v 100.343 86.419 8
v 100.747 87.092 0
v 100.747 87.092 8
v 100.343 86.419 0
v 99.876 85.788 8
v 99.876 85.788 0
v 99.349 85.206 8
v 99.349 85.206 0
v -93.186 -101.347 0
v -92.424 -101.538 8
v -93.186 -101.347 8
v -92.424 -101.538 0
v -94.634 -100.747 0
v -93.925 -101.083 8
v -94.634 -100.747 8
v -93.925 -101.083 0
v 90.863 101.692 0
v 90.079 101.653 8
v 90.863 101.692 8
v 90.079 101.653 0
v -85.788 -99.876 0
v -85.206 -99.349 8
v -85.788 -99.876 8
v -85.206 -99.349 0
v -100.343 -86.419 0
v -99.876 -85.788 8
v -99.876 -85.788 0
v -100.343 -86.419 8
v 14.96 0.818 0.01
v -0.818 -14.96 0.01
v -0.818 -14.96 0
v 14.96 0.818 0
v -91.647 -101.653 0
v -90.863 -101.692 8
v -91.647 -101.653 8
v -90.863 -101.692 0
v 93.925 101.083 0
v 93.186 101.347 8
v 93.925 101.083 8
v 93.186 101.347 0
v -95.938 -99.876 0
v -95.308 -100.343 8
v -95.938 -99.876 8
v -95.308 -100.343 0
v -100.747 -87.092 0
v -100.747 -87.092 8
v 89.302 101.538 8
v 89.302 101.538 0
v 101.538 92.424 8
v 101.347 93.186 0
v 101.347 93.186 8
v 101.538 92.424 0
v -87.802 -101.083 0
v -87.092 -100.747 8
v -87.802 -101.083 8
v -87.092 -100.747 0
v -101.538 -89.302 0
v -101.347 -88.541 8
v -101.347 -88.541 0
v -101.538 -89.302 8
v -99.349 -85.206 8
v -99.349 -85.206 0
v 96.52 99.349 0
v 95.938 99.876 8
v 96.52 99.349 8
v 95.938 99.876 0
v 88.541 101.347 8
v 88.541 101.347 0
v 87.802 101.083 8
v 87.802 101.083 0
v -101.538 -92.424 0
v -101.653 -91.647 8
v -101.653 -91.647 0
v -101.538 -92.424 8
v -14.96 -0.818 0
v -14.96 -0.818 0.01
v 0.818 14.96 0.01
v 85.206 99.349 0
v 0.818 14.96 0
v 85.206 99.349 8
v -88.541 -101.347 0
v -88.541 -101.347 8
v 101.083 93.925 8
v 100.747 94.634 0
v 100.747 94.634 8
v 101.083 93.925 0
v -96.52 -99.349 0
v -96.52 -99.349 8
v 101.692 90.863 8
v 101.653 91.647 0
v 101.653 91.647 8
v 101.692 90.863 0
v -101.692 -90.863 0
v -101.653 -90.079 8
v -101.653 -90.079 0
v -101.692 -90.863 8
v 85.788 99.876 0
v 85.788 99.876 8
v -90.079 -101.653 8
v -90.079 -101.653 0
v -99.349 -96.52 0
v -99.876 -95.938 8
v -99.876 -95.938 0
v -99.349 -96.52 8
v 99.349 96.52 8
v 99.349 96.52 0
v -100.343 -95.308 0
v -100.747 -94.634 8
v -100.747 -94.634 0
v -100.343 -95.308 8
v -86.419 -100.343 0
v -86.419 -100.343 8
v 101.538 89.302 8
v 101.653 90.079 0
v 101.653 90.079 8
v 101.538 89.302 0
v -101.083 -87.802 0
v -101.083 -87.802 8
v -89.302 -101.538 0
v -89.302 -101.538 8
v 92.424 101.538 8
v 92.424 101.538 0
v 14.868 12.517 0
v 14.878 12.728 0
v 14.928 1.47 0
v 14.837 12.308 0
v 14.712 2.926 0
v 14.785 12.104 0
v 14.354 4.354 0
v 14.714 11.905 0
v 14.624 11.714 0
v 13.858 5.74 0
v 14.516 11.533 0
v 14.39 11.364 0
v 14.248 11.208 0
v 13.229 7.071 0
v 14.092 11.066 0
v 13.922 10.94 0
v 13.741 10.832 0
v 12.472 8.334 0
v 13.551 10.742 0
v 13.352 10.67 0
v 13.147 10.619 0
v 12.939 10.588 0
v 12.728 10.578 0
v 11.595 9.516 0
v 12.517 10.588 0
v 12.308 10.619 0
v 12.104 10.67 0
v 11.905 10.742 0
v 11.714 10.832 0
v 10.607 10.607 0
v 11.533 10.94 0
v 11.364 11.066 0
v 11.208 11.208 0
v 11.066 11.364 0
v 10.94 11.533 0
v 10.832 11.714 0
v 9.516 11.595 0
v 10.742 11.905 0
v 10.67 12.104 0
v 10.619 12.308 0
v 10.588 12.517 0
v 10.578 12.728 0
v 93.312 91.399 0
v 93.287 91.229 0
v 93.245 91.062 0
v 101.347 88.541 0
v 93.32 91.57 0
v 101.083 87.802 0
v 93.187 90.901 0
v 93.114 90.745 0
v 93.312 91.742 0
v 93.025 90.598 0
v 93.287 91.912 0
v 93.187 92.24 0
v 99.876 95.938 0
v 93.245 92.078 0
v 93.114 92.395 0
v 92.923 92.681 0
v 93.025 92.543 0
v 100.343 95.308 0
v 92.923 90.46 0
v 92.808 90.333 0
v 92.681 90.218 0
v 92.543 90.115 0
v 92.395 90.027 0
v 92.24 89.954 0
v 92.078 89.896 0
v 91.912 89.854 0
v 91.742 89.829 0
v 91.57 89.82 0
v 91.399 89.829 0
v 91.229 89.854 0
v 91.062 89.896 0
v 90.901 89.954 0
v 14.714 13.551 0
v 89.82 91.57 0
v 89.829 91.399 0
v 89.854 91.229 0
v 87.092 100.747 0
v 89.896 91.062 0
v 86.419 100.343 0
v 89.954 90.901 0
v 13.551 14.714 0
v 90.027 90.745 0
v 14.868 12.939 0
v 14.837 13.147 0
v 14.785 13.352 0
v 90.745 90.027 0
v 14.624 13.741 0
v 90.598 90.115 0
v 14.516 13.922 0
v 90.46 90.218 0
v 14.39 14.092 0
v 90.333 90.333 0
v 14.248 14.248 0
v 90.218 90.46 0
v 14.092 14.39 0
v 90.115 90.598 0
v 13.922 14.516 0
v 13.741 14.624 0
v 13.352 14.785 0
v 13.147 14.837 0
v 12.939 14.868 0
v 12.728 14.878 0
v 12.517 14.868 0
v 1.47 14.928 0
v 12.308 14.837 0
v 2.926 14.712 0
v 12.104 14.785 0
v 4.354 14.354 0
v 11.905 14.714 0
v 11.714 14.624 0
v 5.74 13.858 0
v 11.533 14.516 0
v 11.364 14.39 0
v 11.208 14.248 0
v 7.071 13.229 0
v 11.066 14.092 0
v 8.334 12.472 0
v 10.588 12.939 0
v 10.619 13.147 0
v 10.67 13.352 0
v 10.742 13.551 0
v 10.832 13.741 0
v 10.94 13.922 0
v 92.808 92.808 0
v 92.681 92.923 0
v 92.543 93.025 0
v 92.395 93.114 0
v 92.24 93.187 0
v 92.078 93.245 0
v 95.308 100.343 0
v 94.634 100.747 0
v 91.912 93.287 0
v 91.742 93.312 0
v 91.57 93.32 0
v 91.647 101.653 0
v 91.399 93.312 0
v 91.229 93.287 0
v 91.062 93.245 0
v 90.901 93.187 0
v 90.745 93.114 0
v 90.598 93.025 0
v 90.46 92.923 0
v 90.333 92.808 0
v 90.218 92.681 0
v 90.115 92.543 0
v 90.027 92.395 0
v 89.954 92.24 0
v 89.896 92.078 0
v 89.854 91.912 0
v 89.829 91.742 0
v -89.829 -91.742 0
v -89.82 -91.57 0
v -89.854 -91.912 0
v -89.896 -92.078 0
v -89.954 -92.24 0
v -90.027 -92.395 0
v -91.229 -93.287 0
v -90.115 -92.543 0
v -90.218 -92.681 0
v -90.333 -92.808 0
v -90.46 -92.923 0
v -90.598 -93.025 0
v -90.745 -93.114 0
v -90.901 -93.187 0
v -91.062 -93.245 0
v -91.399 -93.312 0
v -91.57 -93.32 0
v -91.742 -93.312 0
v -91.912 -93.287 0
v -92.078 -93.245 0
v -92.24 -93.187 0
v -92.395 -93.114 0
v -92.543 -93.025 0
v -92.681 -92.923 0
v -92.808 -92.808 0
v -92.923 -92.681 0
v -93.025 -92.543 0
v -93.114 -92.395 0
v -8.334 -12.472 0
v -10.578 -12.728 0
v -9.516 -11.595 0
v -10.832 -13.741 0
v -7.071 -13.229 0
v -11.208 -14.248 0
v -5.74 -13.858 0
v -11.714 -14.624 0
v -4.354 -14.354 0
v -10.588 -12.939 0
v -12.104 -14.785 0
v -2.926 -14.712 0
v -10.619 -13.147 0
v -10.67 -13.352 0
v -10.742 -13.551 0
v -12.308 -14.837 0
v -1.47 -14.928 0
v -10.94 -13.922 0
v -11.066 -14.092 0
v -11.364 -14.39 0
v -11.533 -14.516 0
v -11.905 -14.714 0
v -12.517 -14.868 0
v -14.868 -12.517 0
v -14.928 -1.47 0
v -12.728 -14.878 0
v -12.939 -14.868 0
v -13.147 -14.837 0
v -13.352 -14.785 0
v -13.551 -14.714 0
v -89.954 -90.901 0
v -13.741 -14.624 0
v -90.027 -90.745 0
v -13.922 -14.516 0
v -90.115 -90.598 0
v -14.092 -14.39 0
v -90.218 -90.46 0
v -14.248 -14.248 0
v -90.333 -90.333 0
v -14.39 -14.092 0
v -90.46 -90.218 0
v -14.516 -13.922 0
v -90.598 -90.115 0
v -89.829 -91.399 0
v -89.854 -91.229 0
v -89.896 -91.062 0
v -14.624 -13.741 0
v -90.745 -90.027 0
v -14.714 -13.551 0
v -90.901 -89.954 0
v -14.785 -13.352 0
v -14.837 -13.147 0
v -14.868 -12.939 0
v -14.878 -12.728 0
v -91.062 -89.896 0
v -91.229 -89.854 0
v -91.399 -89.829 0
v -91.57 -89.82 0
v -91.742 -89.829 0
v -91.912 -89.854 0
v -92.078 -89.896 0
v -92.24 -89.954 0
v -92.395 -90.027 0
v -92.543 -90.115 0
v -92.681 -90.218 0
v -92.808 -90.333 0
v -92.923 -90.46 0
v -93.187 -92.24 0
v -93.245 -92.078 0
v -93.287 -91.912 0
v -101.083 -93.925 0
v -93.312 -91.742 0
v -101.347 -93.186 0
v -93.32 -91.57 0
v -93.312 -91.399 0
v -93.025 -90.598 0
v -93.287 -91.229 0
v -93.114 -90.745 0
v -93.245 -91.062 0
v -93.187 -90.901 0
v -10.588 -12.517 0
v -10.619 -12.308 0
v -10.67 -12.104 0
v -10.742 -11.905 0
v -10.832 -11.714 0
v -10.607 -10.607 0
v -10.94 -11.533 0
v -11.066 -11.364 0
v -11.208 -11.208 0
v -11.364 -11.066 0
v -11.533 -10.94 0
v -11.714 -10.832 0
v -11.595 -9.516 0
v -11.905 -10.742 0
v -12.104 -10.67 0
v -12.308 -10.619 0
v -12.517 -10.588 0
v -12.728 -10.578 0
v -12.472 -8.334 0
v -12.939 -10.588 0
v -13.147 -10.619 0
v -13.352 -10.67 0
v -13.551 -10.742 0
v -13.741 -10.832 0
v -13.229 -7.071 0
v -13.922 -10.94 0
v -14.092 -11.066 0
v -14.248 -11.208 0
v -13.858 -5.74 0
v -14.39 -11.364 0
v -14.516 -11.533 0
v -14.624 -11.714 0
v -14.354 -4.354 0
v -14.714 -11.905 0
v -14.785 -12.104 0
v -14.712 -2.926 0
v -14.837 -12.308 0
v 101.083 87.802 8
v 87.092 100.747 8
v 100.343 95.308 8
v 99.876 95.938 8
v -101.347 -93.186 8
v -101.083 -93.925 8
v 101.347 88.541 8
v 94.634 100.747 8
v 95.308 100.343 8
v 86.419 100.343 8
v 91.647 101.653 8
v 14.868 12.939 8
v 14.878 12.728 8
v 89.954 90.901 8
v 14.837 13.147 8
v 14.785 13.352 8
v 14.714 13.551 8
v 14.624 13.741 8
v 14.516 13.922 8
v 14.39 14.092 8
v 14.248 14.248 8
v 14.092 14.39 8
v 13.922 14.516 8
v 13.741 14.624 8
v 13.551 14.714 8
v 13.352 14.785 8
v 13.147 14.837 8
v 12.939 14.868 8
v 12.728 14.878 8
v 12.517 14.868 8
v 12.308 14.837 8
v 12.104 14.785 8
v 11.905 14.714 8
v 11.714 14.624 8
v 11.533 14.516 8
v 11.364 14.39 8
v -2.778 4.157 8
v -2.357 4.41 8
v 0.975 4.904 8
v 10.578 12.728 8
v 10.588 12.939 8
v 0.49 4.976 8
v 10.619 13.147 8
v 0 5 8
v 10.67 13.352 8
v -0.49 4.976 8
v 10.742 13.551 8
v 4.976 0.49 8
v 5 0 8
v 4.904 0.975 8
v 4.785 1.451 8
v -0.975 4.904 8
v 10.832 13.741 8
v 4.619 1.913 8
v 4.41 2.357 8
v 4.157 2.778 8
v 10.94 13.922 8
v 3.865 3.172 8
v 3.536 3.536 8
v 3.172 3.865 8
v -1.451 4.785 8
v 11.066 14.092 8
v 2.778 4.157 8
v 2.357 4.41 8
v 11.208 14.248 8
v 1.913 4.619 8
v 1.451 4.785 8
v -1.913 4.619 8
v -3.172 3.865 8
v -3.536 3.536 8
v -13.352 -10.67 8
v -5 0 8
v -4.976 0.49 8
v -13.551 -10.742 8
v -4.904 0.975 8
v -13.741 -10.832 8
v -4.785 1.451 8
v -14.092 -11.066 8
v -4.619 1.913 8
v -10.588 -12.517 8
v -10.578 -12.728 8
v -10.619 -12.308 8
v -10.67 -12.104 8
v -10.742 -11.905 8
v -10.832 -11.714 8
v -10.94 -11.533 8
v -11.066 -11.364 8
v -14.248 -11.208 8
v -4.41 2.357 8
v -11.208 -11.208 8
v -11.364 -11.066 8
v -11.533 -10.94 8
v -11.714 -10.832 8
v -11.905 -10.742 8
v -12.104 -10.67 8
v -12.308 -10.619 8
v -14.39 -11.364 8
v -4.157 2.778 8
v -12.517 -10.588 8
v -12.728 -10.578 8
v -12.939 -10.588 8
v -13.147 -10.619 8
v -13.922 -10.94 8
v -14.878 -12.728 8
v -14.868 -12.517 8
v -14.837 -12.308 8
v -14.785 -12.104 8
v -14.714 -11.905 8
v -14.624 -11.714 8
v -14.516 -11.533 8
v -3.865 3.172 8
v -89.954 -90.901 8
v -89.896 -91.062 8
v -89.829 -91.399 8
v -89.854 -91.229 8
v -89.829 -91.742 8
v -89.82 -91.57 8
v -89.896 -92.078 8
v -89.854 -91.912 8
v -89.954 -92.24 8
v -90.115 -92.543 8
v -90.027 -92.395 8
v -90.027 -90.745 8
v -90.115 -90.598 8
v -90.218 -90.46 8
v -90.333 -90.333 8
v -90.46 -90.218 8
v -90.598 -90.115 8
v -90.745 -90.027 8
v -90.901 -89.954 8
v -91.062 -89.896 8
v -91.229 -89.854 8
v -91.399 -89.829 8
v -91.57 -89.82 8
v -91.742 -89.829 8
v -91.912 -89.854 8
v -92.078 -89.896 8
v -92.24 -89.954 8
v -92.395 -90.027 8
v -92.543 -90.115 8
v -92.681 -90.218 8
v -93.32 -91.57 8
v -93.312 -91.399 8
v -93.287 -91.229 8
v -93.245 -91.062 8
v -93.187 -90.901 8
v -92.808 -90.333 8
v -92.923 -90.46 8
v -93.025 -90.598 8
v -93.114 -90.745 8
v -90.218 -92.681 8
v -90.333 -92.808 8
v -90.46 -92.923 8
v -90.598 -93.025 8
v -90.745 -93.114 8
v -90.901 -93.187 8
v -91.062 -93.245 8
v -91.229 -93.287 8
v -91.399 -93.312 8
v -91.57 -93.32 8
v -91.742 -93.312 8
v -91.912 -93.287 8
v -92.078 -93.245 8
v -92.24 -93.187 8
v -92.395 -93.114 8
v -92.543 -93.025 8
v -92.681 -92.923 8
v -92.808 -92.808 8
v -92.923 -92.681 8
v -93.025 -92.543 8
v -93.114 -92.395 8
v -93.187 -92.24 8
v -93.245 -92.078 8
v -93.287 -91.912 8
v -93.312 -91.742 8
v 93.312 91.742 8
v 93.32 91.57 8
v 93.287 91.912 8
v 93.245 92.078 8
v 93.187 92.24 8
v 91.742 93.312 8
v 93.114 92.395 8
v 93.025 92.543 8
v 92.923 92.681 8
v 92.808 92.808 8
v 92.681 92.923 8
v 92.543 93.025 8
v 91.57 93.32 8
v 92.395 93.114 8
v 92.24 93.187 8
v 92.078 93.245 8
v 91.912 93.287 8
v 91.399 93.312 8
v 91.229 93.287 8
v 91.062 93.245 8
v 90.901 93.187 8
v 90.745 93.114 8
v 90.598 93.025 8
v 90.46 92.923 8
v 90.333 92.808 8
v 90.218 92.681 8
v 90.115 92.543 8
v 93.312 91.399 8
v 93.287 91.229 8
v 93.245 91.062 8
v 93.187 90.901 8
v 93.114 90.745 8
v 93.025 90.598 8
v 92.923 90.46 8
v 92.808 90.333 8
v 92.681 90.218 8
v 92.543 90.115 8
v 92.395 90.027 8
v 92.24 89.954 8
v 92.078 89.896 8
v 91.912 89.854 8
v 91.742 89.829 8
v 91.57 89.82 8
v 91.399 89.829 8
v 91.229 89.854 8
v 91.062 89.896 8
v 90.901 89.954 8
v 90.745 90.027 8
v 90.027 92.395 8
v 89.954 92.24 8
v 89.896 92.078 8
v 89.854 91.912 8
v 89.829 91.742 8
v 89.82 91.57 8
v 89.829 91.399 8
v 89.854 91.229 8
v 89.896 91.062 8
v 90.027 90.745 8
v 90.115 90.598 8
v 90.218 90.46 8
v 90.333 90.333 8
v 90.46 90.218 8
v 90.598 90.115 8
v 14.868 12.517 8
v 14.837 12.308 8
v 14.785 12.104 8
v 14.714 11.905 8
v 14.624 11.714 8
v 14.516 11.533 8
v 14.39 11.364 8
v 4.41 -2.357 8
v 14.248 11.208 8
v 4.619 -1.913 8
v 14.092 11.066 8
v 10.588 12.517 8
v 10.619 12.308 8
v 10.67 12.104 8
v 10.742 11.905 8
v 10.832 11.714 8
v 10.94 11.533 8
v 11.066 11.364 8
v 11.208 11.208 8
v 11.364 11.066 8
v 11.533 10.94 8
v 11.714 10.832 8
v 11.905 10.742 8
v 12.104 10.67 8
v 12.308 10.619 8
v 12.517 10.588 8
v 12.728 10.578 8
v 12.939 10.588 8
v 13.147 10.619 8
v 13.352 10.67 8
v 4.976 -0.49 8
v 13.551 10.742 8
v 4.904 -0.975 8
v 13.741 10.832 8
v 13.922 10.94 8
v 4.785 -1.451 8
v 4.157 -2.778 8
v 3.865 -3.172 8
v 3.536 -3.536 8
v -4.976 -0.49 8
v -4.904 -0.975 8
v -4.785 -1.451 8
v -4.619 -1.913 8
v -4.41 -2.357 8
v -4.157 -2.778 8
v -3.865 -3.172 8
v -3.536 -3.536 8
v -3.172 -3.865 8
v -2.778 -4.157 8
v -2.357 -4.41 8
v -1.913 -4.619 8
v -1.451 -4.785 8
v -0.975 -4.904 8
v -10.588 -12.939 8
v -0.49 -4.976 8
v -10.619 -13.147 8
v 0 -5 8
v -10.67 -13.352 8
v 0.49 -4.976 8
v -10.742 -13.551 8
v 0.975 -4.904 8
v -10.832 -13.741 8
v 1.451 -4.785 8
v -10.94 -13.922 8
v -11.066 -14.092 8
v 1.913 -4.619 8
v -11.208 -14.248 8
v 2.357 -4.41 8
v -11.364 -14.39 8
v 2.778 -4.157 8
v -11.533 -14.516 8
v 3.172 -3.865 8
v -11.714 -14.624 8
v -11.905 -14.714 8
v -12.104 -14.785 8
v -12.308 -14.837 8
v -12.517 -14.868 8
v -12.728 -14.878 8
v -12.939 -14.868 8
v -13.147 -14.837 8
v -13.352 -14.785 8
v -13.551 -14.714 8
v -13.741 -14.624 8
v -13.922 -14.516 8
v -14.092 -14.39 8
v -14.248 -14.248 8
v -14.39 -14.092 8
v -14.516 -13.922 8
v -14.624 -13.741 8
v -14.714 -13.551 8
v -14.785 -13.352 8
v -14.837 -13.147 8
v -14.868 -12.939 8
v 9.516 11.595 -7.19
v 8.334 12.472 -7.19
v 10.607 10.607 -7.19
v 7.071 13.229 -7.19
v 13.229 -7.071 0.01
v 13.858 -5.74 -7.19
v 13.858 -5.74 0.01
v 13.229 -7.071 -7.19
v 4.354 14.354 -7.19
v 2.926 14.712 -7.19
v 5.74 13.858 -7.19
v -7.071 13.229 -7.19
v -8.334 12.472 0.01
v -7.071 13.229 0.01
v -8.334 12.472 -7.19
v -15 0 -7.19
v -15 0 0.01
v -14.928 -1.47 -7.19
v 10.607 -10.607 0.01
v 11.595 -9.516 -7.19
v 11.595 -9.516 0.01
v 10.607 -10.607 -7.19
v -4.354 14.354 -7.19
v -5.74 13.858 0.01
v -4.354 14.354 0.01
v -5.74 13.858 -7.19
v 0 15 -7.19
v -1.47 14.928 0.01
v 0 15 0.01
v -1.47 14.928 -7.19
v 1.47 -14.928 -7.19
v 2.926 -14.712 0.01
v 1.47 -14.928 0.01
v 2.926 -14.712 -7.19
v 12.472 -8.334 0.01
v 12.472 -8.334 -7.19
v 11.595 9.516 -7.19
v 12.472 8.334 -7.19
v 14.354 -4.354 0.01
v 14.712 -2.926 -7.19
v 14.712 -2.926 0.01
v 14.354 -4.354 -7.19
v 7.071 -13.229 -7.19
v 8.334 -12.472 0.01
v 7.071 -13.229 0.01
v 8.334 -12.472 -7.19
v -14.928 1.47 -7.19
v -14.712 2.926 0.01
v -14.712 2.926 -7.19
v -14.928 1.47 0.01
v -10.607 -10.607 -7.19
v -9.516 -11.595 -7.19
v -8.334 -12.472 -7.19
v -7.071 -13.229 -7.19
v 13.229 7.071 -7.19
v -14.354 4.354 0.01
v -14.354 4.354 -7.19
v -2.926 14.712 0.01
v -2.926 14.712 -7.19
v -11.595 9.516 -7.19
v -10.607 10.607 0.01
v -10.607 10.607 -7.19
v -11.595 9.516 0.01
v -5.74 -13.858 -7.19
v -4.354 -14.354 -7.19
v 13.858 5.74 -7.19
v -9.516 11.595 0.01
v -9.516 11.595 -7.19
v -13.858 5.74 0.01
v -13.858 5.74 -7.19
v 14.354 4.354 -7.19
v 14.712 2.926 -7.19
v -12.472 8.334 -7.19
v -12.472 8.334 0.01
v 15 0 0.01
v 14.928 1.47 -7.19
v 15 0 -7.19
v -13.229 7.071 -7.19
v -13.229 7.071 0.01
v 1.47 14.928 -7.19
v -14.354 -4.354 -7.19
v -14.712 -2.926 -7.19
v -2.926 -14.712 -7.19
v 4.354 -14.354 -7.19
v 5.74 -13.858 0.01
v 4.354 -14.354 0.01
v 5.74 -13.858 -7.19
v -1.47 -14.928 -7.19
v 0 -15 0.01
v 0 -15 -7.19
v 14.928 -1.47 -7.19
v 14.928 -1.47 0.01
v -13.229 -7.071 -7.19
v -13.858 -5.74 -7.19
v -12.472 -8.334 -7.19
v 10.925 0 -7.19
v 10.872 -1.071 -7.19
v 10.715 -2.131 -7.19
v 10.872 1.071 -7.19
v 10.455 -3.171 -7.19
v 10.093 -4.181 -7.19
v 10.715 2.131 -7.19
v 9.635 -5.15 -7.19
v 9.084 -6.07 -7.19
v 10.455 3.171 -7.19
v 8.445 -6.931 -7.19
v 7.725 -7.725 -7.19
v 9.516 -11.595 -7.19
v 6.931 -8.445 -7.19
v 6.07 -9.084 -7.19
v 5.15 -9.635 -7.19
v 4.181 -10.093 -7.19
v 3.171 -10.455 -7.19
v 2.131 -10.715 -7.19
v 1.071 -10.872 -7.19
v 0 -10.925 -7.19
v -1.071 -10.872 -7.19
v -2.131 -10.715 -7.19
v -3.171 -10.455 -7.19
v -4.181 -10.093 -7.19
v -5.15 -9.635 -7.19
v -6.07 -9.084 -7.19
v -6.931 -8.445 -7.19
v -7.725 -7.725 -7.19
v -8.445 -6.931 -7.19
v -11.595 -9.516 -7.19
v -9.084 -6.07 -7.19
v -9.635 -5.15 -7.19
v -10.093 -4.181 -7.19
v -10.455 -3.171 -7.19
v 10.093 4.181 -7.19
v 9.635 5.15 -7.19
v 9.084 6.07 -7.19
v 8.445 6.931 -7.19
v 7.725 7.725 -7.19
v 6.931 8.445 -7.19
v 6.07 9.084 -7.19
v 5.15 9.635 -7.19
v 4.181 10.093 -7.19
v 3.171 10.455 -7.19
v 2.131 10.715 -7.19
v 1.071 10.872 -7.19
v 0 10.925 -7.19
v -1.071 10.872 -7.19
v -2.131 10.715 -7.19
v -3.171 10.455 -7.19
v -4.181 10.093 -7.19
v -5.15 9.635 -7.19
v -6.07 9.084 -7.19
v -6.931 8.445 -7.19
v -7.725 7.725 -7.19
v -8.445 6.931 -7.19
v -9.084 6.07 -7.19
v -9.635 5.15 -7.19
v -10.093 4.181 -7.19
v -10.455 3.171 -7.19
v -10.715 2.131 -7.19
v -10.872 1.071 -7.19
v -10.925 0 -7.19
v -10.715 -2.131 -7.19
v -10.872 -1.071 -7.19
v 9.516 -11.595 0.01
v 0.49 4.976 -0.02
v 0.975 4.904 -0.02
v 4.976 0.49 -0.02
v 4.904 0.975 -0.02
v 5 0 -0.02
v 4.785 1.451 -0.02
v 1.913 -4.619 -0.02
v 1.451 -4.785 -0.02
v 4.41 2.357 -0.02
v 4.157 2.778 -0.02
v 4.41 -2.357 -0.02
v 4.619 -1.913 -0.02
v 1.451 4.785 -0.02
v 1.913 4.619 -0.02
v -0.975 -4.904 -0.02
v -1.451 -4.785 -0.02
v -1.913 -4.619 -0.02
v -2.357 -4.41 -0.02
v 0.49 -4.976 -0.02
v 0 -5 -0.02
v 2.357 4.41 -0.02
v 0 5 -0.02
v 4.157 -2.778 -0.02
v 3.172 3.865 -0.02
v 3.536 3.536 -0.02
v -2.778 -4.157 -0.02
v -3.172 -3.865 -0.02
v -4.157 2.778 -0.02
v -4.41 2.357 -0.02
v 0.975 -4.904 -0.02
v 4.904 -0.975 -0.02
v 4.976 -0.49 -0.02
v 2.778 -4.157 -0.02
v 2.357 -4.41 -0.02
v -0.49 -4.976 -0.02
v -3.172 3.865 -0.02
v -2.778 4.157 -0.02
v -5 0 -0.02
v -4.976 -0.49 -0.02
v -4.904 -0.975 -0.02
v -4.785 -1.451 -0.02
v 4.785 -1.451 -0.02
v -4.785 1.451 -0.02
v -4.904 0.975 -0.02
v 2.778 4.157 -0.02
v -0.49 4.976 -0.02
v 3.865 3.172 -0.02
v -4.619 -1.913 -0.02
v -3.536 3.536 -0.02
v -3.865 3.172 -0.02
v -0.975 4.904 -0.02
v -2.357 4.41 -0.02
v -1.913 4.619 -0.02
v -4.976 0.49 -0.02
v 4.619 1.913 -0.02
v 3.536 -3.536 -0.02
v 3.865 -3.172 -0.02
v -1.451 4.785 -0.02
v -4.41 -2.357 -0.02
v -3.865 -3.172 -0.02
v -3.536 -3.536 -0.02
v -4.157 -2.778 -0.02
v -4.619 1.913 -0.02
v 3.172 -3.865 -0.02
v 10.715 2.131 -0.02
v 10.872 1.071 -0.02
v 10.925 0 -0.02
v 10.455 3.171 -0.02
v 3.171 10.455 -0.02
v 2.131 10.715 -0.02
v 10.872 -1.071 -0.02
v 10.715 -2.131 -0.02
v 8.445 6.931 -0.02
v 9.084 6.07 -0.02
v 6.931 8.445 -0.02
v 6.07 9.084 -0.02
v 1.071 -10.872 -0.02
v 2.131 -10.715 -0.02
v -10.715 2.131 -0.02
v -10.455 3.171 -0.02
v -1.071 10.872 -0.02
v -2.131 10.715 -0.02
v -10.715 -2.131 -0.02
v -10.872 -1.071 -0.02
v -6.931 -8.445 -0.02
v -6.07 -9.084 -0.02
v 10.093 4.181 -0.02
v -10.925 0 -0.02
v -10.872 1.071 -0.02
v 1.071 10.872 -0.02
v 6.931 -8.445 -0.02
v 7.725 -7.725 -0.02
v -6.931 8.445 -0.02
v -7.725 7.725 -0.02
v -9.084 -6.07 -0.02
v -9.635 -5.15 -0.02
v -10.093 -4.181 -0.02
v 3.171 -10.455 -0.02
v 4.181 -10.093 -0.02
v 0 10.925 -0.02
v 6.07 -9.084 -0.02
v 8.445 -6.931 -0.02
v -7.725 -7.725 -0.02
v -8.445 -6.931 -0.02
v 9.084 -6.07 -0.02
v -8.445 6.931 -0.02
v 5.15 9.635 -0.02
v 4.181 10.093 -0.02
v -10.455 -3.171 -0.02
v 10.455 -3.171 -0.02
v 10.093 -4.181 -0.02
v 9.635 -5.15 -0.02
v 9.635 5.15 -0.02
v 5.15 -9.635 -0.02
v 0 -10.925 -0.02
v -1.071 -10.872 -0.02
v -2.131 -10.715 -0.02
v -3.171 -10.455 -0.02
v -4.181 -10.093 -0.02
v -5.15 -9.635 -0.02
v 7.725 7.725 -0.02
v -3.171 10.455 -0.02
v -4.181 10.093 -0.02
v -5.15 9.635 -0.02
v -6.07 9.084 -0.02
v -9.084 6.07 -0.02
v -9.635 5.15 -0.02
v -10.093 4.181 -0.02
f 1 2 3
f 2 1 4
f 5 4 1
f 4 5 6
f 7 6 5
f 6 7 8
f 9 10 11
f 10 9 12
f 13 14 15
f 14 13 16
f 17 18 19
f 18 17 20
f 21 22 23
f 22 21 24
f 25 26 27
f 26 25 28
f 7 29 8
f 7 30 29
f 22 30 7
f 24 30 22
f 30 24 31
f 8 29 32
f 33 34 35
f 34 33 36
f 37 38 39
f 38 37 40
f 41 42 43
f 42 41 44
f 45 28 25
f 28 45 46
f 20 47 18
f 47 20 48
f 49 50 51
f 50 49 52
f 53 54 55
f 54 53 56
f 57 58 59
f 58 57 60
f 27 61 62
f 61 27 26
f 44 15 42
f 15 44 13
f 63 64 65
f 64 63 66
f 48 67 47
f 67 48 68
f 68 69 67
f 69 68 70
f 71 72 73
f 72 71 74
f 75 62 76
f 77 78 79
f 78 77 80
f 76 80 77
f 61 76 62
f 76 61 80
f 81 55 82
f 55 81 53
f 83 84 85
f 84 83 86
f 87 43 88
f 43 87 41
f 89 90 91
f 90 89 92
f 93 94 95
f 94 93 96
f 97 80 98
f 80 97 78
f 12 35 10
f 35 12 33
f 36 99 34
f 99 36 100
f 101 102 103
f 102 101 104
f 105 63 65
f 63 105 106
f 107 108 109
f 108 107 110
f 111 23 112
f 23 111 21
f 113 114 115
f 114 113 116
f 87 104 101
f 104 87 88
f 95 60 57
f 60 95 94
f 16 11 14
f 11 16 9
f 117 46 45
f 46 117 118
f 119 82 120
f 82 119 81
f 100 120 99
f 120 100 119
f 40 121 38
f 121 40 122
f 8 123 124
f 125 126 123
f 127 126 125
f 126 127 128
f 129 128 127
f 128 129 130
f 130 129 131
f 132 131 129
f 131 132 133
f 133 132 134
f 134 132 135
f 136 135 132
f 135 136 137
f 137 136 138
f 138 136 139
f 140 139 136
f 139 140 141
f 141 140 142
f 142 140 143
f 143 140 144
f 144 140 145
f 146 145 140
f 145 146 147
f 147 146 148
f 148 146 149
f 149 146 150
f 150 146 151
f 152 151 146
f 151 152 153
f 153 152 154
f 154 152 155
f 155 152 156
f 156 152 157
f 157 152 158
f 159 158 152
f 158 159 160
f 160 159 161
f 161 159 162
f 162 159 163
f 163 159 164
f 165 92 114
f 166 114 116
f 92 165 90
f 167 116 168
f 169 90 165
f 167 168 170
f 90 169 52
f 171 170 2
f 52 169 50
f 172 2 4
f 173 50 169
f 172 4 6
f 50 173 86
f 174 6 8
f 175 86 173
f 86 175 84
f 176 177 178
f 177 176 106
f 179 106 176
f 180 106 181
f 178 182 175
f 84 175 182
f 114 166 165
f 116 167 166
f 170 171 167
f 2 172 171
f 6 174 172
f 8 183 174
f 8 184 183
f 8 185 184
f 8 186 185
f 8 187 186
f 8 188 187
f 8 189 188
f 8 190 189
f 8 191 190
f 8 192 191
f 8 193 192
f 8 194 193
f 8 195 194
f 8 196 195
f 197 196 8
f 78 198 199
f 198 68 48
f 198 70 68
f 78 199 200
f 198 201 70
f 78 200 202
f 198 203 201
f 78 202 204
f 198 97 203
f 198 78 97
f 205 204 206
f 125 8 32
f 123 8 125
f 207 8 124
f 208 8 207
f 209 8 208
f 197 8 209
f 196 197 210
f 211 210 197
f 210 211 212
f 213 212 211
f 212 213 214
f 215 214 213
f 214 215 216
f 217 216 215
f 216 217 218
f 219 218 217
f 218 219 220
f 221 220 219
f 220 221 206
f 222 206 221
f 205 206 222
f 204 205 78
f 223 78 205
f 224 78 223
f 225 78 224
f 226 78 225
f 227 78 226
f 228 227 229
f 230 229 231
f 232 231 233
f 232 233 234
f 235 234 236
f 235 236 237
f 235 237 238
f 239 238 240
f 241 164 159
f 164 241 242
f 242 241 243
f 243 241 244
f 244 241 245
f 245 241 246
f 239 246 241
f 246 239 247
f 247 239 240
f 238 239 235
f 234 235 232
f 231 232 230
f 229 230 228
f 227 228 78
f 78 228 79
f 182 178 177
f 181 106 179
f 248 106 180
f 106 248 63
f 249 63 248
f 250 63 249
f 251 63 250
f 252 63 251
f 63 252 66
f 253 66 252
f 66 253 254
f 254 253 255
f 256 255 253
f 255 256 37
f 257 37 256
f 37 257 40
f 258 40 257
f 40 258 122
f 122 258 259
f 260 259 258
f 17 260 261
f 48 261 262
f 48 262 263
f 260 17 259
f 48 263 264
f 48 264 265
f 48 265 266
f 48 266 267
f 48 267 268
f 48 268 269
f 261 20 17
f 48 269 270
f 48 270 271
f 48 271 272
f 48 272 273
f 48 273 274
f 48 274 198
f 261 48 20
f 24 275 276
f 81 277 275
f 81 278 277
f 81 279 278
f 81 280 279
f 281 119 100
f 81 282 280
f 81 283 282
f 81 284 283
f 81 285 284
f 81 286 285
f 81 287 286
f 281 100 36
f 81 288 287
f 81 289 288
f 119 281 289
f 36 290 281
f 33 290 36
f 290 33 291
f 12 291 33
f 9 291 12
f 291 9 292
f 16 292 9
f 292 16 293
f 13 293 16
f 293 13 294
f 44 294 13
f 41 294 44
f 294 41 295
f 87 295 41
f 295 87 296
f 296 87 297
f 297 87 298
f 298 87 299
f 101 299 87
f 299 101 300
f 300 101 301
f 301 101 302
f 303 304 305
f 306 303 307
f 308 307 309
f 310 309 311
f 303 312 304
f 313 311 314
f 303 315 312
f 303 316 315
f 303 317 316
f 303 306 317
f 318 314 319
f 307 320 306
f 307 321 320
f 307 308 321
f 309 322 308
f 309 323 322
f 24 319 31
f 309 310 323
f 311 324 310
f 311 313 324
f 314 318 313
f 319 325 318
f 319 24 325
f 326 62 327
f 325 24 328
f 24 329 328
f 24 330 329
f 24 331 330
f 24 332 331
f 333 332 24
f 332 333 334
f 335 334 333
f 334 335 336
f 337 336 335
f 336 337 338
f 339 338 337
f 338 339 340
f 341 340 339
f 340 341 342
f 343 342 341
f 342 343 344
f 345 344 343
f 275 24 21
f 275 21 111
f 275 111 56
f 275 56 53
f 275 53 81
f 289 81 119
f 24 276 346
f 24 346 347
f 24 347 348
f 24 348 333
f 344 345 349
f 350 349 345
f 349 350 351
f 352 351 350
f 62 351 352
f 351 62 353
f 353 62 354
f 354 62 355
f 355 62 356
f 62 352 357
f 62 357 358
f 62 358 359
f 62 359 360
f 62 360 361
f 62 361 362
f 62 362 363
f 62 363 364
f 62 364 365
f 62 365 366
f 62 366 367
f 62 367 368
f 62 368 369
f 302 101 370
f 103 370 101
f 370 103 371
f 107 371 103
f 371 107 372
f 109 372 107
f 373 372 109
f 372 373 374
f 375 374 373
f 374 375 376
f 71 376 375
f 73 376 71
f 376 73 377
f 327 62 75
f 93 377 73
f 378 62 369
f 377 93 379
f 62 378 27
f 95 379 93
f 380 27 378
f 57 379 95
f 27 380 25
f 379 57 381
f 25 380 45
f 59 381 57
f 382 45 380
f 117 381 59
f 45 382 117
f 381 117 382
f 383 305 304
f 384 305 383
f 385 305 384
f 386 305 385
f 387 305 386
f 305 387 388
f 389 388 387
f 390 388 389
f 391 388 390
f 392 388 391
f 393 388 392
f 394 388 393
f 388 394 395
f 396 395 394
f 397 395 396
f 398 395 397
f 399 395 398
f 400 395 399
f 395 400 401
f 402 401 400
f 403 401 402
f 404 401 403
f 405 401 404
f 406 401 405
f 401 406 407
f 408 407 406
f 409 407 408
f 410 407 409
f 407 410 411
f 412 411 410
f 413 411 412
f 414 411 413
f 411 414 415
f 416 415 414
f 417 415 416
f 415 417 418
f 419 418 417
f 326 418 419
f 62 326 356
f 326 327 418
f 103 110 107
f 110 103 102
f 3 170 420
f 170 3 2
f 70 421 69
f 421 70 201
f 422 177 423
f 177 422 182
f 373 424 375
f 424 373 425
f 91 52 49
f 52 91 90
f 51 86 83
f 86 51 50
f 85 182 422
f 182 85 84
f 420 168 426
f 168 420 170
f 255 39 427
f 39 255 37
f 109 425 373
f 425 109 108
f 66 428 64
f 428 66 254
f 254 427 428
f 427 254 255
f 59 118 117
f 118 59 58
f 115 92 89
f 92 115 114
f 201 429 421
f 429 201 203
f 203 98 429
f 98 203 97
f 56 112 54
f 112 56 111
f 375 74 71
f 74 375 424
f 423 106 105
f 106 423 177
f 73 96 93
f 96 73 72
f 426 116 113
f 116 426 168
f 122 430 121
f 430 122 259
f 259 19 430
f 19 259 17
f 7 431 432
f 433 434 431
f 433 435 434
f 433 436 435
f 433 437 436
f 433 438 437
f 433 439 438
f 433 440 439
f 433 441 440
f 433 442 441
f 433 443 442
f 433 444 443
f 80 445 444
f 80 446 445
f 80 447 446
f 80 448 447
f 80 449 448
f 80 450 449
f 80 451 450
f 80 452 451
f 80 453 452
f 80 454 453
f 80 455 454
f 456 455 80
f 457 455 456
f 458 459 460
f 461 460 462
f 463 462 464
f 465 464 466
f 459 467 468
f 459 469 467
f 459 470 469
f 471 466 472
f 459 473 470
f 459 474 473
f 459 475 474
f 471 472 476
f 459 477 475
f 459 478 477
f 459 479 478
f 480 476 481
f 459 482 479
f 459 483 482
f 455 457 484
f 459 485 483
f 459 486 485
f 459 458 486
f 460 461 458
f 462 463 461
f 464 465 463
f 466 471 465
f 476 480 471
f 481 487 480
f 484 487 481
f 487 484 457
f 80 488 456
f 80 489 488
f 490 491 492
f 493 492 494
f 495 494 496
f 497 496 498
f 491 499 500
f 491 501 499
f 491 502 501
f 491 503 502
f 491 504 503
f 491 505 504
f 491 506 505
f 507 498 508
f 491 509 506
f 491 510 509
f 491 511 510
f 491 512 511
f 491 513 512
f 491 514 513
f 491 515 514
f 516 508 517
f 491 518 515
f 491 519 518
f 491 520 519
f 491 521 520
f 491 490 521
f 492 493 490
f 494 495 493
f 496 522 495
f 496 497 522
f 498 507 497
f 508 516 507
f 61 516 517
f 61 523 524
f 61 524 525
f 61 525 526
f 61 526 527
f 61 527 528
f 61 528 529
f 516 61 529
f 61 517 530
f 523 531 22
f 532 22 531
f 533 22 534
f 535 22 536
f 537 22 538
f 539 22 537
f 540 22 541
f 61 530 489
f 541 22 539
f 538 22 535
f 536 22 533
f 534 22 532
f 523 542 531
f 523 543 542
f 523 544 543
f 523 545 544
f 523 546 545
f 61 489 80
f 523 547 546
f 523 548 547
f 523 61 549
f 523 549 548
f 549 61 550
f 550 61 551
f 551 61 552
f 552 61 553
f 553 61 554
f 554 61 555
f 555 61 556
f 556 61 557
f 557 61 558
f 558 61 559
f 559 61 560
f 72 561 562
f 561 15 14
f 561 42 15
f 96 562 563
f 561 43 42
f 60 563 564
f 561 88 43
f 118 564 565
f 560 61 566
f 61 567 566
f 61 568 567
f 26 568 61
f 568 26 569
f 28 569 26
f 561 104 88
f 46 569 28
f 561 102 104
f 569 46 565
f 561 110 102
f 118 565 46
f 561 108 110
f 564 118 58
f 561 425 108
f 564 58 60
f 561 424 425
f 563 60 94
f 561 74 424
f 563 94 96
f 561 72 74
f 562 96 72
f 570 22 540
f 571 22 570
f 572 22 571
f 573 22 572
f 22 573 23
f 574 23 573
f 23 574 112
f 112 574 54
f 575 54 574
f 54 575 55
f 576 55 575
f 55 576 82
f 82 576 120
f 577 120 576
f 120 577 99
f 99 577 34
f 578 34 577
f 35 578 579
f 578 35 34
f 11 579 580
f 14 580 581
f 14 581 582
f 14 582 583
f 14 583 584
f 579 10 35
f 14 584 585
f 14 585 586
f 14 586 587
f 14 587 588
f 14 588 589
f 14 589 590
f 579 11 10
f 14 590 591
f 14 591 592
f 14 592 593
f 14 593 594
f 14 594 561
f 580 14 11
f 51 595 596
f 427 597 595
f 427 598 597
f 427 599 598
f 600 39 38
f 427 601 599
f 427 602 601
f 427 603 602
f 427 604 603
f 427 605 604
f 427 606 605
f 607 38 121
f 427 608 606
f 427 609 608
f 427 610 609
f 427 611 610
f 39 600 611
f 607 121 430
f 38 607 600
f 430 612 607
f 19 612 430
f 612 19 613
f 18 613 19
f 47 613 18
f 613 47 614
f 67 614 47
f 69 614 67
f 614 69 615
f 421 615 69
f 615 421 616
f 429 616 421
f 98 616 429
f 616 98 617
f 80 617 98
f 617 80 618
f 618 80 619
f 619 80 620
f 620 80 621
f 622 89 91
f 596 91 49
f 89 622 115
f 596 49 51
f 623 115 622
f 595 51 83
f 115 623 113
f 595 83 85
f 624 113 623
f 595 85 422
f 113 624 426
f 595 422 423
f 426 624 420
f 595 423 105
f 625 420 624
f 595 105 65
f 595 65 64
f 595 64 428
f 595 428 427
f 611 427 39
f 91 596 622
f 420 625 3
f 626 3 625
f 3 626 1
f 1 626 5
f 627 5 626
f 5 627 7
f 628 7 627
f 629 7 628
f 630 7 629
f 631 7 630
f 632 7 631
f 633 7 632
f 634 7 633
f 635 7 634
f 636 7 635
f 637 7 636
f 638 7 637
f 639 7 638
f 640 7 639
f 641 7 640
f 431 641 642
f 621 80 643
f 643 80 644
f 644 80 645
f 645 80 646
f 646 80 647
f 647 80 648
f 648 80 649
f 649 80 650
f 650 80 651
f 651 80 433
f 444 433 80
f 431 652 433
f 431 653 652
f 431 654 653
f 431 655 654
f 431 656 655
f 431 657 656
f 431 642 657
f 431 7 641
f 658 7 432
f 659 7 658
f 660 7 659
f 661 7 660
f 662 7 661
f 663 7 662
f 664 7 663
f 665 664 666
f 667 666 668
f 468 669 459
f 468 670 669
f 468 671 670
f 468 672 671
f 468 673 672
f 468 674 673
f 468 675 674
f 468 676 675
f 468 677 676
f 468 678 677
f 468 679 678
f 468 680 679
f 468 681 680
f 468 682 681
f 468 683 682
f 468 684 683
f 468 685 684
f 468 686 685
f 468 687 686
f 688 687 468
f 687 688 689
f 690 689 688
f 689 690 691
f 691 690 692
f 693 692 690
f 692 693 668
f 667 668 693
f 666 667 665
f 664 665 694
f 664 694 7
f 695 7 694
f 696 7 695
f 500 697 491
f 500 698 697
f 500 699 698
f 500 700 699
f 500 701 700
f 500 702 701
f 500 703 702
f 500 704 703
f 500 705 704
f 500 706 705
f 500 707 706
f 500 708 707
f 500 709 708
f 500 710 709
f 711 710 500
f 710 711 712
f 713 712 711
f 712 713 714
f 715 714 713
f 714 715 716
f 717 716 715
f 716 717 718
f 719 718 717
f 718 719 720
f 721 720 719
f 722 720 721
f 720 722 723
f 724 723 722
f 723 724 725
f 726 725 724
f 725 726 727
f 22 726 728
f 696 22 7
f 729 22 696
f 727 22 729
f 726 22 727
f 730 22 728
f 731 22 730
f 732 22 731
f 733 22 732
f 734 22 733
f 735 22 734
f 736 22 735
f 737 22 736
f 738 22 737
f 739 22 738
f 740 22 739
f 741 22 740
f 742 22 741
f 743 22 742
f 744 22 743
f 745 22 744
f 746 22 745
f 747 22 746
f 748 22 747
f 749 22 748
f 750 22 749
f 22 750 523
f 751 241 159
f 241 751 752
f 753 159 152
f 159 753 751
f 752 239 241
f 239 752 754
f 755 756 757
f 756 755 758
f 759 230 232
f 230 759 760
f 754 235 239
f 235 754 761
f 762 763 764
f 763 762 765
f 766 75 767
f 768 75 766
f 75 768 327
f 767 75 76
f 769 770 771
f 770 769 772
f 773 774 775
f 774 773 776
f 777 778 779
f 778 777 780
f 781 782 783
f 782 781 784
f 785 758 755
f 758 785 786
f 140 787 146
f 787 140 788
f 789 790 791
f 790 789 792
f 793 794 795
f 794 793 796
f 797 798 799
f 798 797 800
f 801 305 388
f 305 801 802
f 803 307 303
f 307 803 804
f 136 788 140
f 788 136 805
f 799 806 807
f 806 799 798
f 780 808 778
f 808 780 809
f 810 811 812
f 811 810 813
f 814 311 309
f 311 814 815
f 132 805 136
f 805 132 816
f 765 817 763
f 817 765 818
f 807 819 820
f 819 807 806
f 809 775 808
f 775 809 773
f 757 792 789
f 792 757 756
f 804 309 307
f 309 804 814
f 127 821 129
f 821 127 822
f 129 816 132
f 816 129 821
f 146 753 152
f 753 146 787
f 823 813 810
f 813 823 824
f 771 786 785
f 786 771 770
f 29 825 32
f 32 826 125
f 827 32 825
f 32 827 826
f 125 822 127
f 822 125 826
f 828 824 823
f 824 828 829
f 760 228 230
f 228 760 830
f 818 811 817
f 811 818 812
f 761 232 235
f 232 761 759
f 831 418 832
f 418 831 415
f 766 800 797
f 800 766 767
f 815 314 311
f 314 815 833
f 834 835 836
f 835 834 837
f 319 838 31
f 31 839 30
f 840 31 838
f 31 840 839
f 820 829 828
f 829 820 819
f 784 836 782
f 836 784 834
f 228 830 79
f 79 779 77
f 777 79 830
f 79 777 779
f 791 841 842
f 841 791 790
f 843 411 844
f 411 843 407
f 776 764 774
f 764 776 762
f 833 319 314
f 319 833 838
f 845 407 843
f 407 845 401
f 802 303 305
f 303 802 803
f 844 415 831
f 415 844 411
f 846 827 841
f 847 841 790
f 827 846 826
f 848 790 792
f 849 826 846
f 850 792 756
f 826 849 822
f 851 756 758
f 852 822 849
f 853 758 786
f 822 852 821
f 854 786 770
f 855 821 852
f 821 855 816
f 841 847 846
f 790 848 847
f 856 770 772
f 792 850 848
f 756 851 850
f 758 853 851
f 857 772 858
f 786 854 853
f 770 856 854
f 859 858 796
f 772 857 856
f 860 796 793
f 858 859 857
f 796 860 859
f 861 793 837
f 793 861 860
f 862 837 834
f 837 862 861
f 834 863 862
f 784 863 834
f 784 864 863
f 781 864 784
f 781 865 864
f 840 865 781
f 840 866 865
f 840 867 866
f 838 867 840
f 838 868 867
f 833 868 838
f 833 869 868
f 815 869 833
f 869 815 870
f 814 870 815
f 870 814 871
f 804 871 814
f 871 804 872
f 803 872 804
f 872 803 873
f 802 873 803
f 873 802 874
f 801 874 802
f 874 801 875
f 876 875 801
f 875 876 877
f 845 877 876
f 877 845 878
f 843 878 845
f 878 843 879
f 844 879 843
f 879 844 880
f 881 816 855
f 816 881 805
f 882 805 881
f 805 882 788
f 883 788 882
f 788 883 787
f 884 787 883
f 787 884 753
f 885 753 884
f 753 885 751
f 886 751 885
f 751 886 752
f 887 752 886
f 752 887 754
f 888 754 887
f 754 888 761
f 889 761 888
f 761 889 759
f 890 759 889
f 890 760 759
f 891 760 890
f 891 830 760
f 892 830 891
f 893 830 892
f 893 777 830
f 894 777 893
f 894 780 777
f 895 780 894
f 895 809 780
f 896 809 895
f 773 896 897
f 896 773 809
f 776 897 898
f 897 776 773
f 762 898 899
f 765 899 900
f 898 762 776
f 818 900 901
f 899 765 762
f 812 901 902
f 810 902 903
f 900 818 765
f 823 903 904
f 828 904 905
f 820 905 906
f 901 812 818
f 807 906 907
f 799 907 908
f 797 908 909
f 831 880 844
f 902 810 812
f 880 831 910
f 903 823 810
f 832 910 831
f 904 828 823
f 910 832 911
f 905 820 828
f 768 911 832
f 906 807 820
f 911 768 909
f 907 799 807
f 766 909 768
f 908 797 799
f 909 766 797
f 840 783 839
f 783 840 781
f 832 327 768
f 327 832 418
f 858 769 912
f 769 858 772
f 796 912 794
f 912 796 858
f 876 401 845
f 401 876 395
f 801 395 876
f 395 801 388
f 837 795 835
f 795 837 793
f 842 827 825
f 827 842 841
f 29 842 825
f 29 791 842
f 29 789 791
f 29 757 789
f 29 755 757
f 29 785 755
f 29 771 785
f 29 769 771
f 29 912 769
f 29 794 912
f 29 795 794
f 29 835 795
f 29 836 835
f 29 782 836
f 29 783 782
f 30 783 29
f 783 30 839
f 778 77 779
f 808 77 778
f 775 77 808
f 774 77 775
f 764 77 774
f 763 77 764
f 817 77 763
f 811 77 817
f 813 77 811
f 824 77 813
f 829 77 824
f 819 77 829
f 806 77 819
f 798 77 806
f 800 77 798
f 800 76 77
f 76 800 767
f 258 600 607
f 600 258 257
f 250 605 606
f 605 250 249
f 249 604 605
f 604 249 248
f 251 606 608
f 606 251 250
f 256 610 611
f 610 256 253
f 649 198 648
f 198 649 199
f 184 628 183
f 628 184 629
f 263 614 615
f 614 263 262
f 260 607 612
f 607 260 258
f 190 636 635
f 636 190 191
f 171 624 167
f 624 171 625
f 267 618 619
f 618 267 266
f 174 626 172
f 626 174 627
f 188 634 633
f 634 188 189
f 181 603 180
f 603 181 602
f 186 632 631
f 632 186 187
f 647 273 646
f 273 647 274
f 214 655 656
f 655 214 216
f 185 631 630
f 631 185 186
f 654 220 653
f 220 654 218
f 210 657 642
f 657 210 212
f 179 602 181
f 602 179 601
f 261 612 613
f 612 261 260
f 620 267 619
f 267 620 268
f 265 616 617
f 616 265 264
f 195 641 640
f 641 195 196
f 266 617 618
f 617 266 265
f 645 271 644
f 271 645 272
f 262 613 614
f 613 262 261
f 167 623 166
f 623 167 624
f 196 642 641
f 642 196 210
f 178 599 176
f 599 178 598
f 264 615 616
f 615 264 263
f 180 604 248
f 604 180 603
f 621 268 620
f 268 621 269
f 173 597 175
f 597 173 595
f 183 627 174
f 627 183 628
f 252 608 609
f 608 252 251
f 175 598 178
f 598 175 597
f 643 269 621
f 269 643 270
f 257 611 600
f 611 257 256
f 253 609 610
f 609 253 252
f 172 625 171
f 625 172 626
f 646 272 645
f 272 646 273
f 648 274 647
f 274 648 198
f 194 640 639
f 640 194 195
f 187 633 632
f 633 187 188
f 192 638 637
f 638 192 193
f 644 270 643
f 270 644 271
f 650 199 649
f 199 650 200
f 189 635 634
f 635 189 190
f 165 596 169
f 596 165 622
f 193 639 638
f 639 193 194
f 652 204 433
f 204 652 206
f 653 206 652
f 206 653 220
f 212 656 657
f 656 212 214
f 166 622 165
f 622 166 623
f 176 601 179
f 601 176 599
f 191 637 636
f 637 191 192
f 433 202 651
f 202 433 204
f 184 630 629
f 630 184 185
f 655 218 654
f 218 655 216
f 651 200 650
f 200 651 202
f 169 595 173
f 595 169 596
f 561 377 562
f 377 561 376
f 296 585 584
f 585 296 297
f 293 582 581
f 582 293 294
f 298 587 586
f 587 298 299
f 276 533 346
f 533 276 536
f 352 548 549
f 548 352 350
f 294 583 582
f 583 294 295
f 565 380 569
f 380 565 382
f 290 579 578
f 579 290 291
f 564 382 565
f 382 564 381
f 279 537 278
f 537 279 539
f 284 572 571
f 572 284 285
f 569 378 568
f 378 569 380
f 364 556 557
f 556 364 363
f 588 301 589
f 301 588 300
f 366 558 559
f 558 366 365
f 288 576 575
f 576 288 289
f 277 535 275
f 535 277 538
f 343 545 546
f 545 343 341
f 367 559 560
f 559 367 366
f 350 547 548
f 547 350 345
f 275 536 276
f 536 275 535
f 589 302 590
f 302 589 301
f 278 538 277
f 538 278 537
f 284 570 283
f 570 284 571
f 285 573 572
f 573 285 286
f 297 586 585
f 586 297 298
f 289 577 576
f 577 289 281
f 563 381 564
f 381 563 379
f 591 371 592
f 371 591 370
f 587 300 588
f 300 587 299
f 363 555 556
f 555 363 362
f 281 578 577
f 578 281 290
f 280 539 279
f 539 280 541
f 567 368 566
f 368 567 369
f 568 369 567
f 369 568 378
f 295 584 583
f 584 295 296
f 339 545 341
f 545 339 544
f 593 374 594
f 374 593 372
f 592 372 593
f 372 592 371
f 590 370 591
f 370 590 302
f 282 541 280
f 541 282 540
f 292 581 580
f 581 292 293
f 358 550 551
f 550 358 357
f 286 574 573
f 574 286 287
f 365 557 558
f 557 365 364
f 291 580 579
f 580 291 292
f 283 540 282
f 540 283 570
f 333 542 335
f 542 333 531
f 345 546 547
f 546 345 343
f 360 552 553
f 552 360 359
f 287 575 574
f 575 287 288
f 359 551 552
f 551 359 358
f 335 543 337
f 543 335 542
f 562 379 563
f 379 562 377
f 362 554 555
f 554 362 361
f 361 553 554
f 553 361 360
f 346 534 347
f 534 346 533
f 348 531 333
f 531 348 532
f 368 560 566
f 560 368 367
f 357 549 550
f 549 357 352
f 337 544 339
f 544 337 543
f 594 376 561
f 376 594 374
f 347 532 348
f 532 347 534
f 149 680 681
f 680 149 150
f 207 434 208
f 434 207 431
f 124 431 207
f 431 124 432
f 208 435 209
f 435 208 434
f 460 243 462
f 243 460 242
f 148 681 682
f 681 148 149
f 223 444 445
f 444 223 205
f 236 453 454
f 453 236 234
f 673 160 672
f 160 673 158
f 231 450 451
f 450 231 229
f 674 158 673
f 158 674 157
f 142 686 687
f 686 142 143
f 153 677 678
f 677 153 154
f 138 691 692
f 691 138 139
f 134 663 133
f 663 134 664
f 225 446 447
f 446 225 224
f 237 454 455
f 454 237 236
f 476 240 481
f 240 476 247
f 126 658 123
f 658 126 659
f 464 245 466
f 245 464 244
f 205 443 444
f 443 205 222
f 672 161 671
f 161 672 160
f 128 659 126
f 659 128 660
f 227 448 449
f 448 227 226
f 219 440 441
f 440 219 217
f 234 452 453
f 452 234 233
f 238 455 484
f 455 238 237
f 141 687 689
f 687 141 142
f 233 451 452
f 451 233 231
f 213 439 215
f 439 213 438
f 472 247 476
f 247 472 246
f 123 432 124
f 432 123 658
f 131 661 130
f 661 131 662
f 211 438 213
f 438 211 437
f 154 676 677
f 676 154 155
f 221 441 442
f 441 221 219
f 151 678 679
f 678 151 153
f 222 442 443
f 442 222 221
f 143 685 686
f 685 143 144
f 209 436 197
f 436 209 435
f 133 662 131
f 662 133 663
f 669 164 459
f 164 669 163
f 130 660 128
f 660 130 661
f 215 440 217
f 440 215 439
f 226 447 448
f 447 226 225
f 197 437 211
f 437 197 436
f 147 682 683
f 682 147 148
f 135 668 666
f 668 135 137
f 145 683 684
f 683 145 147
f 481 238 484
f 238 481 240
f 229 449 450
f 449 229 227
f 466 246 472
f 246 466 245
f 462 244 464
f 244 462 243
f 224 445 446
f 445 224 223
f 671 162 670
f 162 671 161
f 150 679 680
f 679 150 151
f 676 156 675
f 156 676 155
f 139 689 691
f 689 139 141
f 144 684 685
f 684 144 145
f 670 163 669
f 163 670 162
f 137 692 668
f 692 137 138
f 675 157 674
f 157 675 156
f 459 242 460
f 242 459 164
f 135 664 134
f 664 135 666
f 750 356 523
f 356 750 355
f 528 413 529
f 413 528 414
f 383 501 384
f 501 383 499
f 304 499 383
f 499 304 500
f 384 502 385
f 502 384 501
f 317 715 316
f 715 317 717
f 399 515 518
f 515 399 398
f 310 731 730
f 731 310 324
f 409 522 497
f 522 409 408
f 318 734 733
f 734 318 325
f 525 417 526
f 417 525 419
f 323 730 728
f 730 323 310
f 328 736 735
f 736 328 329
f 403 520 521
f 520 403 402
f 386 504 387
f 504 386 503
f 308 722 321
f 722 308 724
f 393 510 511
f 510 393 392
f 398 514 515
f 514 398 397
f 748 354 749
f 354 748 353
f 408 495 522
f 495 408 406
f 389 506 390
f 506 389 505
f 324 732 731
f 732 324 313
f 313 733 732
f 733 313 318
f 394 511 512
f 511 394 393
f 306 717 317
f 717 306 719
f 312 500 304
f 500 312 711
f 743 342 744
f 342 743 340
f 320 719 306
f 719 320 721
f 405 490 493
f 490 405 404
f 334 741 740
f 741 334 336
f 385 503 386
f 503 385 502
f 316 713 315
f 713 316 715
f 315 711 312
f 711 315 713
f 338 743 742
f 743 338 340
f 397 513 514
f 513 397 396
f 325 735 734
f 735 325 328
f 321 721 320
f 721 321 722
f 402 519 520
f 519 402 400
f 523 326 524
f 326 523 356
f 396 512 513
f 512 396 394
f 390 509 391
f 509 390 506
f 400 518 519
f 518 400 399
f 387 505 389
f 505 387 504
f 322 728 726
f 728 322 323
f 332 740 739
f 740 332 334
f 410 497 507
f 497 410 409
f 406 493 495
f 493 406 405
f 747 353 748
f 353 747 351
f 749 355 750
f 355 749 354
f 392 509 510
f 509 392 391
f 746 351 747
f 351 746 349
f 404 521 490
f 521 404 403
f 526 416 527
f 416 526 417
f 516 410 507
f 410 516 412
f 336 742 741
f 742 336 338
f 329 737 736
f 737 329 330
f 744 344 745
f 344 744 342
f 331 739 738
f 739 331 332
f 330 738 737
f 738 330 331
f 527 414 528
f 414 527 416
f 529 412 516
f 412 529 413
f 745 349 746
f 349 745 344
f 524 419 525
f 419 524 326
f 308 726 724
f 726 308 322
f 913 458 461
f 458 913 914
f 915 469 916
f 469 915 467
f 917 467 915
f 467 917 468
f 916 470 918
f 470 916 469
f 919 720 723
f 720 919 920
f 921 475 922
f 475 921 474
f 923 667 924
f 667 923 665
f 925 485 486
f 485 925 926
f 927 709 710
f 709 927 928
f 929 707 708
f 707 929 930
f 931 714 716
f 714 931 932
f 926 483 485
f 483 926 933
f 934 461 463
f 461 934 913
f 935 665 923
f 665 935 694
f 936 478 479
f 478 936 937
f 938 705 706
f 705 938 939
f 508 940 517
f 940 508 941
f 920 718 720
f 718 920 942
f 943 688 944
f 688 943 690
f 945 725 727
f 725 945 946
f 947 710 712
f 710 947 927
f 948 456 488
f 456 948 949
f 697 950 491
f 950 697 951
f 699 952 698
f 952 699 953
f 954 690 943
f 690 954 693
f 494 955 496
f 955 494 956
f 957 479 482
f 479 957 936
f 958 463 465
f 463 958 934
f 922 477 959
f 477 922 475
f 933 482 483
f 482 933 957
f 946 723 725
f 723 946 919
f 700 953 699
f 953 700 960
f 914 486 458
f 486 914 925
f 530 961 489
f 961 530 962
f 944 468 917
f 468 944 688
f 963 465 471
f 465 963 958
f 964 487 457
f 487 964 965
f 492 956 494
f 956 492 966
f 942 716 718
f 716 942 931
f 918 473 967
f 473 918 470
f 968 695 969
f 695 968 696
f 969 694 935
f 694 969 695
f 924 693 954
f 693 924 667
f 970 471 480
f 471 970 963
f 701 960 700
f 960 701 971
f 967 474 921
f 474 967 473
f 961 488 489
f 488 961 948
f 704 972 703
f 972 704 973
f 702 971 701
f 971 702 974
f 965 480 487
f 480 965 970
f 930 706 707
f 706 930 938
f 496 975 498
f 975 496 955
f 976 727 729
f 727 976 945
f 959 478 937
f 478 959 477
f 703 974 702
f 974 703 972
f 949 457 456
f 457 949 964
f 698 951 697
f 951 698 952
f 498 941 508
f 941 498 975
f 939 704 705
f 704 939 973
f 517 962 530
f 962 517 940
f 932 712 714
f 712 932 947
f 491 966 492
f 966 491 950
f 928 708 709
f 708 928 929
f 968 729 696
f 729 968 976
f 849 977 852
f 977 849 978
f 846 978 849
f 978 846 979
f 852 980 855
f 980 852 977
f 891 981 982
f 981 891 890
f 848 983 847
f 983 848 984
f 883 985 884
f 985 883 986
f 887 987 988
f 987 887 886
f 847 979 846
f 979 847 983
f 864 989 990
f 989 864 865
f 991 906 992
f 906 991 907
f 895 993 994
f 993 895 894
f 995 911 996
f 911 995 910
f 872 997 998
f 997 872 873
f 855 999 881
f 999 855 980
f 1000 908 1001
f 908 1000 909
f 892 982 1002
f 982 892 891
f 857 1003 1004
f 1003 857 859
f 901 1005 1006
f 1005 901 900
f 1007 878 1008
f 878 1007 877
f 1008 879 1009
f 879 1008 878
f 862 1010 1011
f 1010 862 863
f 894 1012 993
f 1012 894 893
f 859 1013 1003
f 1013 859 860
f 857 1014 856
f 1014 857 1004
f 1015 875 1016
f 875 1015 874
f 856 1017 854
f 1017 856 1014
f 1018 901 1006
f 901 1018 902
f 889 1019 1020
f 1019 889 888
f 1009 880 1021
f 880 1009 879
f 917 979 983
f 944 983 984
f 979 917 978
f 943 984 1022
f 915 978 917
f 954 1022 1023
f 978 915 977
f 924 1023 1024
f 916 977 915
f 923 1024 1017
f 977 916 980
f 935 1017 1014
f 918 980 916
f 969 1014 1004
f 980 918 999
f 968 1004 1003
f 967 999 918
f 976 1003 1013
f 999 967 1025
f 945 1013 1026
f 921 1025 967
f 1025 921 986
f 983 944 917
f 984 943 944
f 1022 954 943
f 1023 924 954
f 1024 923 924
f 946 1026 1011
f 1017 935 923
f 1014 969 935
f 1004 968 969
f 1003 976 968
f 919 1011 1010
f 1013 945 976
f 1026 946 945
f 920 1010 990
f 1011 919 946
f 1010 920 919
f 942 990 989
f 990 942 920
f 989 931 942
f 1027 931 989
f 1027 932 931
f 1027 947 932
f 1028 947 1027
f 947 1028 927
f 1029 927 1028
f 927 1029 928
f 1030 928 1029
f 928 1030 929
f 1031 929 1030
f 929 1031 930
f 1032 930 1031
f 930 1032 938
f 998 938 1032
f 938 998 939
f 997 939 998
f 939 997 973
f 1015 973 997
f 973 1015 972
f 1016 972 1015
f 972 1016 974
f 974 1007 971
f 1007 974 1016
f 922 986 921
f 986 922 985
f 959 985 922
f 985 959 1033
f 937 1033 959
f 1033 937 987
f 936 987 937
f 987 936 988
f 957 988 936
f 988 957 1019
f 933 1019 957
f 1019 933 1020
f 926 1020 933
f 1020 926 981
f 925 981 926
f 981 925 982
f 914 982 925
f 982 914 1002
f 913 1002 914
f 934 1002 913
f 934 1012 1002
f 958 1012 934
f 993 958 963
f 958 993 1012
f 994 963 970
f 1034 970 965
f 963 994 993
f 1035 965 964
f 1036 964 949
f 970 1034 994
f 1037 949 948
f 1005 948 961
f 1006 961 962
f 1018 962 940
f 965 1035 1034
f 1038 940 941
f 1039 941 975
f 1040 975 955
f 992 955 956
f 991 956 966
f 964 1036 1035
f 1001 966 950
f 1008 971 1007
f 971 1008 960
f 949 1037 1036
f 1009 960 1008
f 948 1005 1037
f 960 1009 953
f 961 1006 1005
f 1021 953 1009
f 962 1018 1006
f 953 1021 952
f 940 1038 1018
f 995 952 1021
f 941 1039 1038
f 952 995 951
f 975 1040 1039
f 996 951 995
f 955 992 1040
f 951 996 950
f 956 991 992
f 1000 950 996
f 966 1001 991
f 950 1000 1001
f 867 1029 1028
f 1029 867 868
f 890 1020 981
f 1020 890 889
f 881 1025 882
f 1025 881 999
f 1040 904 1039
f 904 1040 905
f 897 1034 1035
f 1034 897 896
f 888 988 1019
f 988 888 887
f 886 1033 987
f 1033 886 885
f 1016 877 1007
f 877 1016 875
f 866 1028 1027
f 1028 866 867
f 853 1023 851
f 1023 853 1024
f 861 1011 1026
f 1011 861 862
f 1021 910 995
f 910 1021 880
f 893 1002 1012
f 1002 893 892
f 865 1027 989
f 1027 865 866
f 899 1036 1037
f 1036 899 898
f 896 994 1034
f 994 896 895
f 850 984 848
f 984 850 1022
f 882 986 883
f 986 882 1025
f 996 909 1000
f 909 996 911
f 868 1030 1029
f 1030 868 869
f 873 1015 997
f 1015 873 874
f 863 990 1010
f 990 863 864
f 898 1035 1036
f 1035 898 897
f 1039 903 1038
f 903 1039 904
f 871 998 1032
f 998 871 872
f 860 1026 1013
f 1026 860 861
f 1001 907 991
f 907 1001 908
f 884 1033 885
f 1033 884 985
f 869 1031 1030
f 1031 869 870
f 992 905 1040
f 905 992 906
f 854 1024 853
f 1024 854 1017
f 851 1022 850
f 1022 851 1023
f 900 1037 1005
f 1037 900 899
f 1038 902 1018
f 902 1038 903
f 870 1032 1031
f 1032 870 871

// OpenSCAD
// Gen-DH — front BEARING BRIDGE (bar endbell, 2026-10-10): a 608 boss on a 20 mm wide bar that spans the
// two frame rods at 45 deg and 45+180 deg (R = flange_bolt_r). The front bridge uses the rods at 45/225 deg, the rear
// bridge the rods at 135/315 deg, so the two bridges cross at 90 deg and the stator is held at 4 points.
// A bar instead of a full disc is what lets this big-ring kit fit ONE 410 mm plate. Print flat face DOWN (boss up, no supports).
// Brace holes (temporary M4 jack rods, R = brace_r) sit on the bar axis.
include <parameters.scad>;
$fn = 64;
bar_w = 20;
bar_len = 2 * (flange_bolt_r + 9);
module bar_2d() { offset(r=8) offset(delta=-8) square([bar_len, bar_w], center=true); }
difference() {
    rotate([0, 0, 45]) union() {
        linear_extrude(endbell_thick) bar_2d();
        translate([0, 0, -bearing_h + 0.01]) cylinder(d=30, h=bearing_h);
    }
    translate([0, 0, -bearing_h - 0.1]) cylinder(d=endbell_shaft_clear, h=50);
    translate([0, 0, -bearing_h - 0.02]) cylinder(d=bearing_d, h=bearing_h);
    for (s = [0, 180]) rotate([0, 0, 45 + s]) translate([flange_bolt_r, 0, -20]) cylinder(d=m3_clear, h=60);
    for (a = brace_angles) translate([brace_r*cos(a), brace_r*sin(a), -20]) cylinder(d=brace_d, h=50);
}
